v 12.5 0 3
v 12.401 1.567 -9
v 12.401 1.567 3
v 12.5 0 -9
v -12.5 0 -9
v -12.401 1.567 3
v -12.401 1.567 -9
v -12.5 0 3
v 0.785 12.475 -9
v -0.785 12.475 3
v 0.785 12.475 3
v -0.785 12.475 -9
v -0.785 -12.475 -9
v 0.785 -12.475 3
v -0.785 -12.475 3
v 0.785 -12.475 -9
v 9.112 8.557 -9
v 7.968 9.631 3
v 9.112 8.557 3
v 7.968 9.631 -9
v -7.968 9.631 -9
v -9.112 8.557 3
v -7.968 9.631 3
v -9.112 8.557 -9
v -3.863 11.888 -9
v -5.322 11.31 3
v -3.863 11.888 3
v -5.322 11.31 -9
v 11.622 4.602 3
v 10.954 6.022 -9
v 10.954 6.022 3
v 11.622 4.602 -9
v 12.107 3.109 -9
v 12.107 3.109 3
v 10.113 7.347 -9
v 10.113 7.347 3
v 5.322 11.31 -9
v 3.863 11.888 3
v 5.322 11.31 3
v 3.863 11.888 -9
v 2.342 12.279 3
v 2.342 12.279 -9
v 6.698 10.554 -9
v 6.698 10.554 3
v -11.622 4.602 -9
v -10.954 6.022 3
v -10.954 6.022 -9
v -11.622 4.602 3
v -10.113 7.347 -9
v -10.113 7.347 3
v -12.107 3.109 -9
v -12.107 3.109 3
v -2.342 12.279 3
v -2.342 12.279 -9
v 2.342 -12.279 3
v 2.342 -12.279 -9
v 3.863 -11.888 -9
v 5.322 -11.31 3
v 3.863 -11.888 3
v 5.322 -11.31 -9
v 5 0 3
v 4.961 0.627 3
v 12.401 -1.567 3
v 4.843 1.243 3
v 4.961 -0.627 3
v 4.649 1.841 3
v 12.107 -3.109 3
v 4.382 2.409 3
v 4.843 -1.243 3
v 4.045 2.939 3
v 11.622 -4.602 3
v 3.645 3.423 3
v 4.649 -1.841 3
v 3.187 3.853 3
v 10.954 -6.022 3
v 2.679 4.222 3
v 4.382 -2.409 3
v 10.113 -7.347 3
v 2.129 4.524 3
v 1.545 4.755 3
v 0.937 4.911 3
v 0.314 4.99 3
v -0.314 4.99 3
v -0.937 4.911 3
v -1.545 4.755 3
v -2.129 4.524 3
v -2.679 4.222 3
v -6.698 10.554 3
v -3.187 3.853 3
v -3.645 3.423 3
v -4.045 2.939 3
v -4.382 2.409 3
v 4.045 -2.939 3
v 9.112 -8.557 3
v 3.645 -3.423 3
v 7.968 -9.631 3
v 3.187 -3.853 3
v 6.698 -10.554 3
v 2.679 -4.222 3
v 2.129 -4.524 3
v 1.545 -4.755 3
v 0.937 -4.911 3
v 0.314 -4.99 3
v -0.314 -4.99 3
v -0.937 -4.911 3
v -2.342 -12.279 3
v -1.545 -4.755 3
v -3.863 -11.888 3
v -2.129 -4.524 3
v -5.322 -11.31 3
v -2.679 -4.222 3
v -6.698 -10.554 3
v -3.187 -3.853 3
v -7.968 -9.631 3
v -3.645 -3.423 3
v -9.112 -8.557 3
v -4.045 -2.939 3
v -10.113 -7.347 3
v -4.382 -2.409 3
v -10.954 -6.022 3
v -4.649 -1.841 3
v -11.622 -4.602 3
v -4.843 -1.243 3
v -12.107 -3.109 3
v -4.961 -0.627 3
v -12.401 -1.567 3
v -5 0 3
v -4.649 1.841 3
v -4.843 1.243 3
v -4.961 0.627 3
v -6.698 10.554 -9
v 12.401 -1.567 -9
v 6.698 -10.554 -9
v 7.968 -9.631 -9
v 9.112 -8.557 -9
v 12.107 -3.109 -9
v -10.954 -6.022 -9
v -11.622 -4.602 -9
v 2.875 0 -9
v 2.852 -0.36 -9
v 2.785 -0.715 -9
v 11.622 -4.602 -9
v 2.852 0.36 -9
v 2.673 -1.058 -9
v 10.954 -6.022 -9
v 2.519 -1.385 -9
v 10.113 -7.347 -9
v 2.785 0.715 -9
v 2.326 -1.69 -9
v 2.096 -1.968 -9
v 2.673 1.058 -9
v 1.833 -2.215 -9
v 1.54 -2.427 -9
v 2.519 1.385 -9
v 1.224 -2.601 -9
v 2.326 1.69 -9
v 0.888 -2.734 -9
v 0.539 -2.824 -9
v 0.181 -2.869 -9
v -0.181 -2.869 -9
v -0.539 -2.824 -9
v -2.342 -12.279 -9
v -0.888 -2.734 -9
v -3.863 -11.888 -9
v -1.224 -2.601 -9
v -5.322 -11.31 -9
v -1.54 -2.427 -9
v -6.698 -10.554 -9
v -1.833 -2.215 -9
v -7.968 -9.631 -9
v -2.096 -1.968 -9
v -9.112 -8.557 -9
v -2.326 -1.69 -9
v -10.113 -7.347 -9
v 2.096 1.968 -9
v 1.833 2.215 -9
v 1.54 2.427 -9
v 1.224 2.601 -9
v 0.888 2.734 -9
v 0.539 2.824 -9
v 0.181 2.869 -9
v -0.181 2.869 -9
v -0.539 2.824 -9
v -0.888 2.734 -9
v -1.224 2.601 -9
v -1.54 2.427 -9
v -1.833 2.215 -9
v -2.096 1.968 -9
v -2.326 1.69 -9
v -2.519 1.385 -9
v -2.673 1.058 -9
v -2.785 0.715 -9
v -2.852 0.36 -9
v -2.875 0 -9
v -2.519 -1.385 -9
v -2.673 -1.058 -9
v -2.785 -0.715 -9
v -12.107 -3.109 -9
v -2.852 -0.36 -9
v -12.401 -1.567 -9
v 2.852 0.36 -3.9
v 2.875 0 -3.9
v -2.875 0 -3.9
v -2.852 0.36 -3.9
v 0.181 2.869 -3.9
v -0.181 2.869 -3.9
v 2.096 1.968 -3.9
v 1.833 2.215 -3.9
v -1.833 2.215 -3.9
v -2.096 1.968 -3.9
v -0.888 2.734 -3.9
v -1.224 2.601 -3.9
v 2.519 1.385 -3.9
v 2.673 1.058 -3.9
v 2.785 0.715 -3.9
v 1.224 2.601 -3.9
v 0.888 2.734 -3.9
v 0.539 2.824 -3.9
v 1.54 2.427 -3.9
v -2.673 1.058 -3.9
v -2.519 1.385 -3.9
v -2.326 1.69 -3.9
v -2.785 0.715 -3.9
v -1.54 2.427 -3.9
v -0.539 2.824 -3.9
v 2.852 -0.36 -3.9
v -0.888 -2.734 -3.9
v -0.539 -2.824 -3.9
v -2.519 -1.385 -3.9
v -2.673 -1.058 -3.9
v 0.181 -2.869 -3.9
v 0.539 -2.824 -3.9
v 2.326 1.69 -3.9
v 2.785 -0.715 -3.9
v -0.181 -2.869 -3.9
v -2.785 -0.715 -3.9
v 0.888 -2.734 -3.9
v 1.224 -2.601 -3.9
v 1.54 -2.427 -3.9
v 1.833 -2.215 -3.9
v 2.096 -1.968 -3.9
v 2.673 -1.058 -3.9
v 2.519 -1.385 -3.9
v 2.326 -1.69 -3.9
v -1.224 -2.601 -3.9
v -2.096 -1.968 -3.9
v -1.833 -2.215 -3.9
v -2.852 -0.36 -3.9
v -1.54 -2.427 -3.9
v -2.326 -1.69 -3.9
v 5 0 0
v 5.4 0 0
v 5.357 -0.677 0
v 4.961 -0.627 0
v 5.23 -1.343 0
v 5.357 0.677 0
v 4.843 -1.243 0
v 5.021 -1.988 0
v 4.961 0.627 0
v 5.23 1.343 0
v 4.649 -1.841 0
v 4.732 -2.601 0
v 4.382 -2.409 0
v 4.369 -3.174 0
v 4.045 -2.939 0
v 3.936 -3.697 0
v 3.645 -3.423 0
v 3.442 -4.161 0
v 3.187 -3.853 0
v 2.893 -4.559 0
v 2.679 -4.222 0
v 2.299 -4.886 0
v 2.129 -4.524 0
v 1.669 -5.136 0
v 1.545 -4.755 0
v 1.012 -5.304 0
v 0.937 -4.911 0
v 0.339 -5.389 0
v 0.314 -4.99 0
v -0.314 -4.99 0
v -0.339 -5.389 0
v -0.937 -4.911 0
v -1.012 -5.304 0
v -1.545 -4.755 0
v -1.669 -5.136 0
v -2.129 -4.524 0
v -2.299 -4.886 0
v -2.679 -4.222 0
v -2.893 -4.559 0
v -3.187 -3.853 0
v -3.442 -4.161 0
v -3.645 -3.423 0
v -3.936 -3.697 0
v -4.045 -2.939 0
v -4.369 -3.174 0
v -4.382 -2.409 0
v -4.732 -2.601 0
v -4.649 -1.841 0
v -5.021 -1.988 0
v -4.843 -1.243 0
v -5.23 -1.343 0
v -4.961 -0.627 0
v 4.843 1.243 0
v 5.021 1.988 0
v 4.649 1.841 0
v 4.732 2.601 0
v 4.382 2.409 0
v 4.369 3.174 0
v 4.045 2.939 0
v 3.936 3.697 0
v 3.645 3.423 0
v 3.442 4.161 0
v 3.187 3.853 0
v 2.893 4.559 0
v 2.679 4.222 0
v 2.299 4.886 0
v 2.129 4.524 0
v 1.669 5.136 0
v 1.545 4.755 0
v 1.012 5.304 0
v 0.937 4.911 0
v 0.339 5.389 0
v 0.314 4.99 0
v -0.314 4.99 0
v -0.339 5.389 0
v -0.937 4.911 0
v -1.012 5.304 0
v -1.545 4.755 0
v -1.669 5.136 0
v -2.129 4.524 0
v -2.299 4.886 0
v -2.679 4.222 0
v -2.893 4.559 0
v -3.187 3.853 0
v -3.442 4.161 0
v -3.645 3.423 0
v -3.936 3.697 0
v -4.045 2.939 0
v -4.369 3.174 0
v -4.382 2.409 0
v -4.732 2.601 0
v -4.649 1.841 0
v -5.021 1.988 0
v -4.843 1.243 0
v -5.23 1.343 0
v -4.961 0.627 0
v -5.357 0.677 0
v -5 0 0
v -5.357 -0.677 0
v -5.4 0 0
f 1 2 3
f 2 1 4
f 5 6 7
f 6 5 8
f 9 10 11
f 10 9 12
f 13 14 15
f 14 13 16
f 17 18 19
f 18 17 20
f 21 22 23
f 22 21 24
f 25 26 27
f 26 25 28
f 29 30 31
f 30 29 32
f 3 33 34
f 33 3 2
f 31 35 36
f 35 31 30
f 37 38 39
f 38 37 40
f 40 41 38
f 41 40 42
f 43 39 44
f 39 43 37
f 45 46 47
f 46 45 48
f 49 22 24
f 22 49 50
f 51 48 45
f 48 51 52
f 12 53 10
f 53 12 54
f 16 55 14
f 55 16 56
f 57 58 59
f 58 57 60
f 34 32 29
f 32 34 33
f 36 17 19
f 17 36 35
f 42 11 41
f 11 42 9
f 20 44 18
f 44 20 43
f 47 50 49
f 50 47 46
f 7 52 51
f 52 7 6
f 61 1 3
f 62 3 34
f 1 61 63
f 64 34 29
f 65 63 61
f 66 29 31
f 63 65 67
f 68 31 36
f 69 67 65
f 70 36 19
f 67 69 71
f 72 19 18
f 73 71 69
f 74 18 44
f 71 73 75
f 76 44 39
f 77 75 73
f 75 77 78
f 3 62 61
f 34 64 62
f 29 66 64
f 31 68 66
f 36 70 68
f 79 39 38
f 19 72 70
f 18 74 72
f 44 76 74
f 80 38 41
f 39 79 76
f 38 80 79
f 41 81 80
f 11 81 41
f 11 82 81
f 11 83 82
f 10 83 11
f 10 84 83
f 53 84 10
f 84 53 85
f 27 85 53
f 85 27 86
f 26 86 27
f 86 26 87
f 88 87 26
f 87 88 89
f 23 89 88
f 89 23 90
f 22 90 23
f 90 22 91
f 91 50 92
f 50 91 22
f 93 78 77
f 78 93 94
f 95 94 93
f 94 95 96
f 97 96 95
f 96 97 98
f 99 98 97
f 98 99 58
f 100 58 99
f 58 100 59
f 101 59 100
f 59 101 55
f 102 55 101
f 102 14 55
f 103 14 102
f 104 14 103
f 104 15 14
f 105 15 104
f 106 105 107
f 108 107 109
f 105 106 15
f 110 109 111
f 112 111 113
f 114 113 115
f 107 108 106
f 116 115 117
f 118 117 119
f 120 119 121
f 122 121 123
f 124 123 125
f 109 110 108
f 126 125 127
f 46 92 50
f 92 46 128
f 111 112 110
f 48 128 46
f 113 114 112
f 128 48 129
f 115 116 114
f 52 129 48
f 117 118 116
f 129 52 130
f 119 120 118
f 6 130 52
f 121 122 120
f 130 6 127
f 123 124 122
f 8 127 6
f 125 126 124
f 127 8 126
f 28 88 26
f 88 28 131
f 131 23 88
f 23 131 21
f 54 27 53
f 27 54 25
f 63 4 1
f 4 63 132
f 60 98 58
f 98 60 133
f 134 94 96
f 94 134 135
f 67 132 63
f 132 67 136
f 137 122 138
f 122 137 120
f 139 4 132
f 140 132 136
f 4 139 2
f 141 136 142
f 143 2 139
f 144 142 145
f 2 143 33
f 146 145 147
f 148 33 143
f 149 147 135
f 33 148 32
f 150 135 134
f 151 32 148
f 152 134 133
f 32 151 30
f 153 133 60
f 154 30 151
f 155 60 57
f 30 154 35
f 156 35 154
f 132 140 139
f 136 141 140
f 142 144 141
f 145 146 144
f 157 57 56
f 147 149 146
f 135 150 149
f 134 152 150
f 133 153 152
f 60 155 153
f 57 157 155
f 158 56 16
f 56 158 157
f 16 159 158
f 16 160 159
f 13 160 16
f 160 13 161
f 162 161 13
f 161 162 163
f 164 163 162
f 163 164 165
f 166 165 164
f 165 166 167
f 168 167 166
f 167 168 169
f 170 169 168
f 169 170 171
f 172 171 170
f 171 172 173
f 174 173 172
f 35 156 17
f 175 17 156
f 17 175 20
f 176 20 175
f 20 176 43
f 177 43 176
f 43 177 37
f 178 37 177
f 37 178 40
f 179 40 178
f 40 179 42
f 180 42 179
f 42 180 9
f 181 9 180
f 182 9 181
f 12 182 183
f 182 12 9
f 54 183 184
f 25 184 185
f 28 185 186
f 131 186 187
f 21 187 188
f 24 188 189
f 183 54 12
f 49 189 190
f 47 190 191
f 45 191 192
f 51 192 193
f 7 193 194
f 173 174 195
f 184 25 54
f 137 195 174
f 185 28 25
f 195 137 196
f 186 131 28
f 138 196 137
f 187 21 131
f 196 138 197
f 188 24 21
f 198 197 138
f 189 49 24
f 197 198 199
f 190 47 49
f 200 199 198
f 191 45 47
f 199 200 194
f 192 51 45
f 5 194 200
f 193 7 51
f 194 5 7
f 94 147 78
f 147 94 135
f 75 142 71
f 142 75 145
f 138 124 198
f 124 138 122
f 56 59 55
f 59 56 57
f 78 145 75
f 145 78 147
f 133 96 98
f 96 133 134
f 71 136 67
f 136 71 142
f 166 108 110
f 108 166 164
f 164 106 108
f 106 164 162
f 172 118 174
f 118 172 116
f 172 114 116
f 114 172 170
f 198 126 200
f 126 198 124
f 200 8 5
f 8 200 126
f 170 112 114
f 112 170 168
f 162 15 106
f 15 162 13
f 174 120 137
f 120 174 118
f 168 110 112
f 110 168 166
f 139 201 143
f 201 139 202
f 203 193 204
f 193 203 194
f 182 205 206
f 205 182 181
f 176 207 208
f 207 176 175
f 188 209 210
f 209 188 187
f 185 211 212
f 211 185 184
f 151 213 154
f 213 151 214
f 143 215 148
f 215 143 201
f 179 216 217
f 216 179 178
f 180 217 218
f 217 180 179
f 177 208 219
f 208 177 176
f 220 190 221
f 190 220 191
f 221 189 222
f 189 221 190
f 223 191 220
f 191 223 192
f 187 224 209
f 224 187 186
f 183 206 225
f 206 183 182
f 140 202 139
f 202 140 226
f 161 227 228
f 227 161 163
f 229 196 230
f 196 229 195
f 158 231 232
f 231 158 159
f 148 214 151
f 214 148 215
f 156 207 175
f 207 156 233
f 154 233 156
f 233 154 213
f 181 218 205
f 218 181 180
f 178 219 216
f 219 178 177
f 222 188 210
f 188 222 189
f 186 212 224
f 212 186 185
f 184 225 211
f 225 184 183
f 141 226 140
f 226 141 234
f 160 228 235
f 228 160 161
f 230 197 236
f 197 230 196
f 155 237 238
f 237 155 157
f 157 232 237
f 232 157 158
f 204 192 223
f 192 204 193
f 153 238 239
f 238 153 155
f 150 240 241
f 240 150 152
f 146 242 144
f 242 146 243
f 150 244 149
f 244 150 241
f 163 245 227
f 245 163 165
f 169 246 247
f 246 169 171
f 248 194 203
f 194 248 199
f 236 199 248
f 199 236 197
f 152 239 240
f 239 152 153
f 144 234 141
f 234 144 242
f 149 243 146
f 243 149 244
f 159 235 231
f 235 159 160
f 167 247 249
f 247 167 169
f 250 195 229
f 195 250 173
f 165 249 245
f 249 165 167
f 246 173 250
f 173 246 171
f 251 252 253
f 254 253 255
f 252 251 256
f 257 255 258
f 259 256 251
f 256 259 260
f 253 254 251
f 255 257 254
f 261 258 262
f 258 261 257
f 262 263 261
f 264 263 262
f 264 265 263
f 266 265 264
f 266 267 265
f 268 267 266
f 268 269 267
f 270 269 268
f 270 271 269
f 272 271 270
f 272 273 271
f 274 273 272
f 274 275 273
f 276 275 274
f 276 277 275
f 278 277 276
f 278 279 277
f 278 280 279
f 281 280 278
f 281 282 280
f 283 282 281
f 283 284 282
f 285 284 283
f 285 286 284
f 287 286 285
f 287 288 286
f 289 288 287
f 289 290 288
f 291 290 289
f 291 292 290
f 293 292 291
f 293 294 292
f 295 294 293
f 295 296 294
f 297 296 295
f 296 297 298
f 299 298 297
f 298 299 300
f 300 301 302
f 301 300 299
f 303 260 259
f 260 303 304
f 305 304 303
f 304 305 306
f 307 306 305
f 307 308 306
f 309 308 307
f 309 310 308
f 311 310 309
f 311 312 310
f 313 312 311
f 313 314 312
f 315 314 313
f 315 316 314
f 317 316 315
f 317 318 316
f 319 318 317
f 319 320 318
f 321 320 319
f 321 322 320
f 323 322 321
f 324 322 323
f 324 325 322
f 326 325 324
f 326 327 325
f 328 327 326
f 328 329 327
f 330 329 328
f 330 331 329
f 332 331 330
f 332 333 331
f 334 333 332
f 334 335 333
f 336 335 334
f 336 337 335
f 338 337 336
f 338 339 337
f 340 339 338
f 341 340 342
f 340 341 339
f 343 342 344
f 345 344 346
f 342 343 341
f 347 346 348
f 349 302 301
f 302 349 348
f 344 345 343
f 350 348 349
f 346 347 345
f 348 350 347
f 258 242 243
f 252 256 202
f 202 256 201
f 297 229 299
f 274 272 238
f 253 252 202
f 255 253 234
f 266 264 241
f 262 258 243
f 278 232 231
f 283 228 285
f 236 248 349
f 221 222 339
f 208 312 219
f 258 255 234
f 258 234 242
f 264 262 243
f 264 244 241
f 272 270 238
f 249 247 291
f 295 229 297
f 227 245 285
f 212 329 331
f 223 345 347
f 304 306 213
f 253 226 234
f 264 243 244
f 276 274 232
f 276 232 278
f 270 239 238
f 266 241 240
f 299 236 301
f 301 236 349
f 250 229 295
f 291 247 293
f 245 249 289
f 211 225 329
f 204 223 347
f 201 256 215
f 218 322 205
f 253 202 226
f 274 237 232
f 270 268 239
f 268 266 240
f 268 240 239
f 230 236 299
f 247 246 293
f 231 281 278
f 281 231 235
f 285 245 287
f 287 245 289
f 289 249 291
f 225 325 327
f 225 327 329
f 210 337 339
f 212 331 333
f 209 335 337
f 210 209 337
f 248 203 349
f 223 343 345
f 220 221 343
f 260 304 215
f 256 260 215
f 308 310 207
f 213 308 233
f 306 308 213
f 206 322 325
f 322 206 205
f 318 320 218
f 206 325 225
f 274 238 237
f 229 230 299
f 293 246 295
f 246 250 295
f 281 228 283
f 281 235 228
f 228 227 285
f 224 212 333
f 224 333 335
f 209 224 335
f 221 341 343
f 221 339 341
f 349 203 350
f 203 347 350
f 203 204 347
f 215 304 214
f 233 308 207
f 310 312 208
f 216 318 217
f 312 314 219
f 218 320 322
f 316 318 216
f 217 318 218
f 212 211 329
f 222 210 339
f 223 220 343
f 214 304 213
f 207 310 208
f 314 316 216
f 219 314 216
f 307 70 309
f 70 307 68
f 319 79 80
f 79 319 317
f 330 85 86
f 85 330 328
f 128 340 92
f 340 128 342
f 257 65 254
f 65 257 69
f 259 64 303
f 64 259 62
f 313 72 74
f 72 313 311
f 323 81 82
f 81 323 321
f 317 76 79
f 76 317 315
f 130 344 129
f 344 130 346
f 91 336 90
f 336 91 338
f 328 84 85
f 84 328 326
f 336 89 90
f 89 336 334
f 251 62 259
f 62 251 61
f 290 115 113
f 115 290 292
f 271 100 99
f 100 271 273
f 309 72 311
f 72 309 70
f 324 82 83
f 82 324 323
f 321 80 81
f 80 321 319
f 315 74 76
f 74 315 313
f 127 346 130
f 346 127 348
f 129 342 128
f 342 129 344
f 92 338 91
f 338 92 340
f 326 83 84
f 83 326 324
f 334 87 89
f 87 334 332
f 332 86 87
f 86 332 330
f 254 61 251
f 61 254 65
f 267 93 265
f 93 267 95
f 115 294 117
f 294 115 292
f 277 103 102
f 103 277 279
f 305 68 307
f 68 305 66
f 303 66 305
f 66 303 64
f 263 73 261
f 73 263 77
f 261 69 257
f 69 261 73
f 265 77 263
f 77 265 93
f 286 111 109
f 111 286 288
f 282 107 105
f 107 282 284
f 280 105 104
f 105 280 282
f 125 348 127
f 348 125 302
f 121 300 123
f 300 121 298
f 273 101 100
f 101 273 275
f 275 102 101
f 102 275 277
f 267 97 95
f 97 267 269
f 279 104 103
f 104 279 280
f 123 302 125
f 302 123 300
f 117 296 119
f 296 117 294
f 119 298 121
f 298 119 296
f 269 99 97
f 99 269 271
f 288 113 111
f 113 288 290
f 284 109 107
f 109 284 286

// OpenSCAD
$fn = 50;

difference() {
	union() {
		translate(v = [0, 0, -9.0]) {
			cylinder(h = 12, r = 12.5);
		}
		#translate(v = [0, 0, -12.0]) {
			cylinder(h = 12, r = 2.875);
		}
	}
	union() {
		translate(v = [0, 0, 0]) {
			rotate(a = [0, 0, 0]) {
				difference() {
					union() {
						translate(v = [0, 0, -12.0]) {
							cylinder(h = 12, r = 2.6);
						}
						translate(v = [0, 0, -3.9]) {
							cylinder(h = 3.9, r1 = 2.875, r2 = 5.4);
						}
						translate(v = [0, 0, -12.0]) {
							cylinder(h = 12, r = 2.875);
						}
						translate(v = [0, 0, -12.0]) {
							cylinder(h = 12, r = 2.6);
						}
					}
					union();
				}
			}
		}
		#cylinder(h = 3, r = 5.0);
	}
}
